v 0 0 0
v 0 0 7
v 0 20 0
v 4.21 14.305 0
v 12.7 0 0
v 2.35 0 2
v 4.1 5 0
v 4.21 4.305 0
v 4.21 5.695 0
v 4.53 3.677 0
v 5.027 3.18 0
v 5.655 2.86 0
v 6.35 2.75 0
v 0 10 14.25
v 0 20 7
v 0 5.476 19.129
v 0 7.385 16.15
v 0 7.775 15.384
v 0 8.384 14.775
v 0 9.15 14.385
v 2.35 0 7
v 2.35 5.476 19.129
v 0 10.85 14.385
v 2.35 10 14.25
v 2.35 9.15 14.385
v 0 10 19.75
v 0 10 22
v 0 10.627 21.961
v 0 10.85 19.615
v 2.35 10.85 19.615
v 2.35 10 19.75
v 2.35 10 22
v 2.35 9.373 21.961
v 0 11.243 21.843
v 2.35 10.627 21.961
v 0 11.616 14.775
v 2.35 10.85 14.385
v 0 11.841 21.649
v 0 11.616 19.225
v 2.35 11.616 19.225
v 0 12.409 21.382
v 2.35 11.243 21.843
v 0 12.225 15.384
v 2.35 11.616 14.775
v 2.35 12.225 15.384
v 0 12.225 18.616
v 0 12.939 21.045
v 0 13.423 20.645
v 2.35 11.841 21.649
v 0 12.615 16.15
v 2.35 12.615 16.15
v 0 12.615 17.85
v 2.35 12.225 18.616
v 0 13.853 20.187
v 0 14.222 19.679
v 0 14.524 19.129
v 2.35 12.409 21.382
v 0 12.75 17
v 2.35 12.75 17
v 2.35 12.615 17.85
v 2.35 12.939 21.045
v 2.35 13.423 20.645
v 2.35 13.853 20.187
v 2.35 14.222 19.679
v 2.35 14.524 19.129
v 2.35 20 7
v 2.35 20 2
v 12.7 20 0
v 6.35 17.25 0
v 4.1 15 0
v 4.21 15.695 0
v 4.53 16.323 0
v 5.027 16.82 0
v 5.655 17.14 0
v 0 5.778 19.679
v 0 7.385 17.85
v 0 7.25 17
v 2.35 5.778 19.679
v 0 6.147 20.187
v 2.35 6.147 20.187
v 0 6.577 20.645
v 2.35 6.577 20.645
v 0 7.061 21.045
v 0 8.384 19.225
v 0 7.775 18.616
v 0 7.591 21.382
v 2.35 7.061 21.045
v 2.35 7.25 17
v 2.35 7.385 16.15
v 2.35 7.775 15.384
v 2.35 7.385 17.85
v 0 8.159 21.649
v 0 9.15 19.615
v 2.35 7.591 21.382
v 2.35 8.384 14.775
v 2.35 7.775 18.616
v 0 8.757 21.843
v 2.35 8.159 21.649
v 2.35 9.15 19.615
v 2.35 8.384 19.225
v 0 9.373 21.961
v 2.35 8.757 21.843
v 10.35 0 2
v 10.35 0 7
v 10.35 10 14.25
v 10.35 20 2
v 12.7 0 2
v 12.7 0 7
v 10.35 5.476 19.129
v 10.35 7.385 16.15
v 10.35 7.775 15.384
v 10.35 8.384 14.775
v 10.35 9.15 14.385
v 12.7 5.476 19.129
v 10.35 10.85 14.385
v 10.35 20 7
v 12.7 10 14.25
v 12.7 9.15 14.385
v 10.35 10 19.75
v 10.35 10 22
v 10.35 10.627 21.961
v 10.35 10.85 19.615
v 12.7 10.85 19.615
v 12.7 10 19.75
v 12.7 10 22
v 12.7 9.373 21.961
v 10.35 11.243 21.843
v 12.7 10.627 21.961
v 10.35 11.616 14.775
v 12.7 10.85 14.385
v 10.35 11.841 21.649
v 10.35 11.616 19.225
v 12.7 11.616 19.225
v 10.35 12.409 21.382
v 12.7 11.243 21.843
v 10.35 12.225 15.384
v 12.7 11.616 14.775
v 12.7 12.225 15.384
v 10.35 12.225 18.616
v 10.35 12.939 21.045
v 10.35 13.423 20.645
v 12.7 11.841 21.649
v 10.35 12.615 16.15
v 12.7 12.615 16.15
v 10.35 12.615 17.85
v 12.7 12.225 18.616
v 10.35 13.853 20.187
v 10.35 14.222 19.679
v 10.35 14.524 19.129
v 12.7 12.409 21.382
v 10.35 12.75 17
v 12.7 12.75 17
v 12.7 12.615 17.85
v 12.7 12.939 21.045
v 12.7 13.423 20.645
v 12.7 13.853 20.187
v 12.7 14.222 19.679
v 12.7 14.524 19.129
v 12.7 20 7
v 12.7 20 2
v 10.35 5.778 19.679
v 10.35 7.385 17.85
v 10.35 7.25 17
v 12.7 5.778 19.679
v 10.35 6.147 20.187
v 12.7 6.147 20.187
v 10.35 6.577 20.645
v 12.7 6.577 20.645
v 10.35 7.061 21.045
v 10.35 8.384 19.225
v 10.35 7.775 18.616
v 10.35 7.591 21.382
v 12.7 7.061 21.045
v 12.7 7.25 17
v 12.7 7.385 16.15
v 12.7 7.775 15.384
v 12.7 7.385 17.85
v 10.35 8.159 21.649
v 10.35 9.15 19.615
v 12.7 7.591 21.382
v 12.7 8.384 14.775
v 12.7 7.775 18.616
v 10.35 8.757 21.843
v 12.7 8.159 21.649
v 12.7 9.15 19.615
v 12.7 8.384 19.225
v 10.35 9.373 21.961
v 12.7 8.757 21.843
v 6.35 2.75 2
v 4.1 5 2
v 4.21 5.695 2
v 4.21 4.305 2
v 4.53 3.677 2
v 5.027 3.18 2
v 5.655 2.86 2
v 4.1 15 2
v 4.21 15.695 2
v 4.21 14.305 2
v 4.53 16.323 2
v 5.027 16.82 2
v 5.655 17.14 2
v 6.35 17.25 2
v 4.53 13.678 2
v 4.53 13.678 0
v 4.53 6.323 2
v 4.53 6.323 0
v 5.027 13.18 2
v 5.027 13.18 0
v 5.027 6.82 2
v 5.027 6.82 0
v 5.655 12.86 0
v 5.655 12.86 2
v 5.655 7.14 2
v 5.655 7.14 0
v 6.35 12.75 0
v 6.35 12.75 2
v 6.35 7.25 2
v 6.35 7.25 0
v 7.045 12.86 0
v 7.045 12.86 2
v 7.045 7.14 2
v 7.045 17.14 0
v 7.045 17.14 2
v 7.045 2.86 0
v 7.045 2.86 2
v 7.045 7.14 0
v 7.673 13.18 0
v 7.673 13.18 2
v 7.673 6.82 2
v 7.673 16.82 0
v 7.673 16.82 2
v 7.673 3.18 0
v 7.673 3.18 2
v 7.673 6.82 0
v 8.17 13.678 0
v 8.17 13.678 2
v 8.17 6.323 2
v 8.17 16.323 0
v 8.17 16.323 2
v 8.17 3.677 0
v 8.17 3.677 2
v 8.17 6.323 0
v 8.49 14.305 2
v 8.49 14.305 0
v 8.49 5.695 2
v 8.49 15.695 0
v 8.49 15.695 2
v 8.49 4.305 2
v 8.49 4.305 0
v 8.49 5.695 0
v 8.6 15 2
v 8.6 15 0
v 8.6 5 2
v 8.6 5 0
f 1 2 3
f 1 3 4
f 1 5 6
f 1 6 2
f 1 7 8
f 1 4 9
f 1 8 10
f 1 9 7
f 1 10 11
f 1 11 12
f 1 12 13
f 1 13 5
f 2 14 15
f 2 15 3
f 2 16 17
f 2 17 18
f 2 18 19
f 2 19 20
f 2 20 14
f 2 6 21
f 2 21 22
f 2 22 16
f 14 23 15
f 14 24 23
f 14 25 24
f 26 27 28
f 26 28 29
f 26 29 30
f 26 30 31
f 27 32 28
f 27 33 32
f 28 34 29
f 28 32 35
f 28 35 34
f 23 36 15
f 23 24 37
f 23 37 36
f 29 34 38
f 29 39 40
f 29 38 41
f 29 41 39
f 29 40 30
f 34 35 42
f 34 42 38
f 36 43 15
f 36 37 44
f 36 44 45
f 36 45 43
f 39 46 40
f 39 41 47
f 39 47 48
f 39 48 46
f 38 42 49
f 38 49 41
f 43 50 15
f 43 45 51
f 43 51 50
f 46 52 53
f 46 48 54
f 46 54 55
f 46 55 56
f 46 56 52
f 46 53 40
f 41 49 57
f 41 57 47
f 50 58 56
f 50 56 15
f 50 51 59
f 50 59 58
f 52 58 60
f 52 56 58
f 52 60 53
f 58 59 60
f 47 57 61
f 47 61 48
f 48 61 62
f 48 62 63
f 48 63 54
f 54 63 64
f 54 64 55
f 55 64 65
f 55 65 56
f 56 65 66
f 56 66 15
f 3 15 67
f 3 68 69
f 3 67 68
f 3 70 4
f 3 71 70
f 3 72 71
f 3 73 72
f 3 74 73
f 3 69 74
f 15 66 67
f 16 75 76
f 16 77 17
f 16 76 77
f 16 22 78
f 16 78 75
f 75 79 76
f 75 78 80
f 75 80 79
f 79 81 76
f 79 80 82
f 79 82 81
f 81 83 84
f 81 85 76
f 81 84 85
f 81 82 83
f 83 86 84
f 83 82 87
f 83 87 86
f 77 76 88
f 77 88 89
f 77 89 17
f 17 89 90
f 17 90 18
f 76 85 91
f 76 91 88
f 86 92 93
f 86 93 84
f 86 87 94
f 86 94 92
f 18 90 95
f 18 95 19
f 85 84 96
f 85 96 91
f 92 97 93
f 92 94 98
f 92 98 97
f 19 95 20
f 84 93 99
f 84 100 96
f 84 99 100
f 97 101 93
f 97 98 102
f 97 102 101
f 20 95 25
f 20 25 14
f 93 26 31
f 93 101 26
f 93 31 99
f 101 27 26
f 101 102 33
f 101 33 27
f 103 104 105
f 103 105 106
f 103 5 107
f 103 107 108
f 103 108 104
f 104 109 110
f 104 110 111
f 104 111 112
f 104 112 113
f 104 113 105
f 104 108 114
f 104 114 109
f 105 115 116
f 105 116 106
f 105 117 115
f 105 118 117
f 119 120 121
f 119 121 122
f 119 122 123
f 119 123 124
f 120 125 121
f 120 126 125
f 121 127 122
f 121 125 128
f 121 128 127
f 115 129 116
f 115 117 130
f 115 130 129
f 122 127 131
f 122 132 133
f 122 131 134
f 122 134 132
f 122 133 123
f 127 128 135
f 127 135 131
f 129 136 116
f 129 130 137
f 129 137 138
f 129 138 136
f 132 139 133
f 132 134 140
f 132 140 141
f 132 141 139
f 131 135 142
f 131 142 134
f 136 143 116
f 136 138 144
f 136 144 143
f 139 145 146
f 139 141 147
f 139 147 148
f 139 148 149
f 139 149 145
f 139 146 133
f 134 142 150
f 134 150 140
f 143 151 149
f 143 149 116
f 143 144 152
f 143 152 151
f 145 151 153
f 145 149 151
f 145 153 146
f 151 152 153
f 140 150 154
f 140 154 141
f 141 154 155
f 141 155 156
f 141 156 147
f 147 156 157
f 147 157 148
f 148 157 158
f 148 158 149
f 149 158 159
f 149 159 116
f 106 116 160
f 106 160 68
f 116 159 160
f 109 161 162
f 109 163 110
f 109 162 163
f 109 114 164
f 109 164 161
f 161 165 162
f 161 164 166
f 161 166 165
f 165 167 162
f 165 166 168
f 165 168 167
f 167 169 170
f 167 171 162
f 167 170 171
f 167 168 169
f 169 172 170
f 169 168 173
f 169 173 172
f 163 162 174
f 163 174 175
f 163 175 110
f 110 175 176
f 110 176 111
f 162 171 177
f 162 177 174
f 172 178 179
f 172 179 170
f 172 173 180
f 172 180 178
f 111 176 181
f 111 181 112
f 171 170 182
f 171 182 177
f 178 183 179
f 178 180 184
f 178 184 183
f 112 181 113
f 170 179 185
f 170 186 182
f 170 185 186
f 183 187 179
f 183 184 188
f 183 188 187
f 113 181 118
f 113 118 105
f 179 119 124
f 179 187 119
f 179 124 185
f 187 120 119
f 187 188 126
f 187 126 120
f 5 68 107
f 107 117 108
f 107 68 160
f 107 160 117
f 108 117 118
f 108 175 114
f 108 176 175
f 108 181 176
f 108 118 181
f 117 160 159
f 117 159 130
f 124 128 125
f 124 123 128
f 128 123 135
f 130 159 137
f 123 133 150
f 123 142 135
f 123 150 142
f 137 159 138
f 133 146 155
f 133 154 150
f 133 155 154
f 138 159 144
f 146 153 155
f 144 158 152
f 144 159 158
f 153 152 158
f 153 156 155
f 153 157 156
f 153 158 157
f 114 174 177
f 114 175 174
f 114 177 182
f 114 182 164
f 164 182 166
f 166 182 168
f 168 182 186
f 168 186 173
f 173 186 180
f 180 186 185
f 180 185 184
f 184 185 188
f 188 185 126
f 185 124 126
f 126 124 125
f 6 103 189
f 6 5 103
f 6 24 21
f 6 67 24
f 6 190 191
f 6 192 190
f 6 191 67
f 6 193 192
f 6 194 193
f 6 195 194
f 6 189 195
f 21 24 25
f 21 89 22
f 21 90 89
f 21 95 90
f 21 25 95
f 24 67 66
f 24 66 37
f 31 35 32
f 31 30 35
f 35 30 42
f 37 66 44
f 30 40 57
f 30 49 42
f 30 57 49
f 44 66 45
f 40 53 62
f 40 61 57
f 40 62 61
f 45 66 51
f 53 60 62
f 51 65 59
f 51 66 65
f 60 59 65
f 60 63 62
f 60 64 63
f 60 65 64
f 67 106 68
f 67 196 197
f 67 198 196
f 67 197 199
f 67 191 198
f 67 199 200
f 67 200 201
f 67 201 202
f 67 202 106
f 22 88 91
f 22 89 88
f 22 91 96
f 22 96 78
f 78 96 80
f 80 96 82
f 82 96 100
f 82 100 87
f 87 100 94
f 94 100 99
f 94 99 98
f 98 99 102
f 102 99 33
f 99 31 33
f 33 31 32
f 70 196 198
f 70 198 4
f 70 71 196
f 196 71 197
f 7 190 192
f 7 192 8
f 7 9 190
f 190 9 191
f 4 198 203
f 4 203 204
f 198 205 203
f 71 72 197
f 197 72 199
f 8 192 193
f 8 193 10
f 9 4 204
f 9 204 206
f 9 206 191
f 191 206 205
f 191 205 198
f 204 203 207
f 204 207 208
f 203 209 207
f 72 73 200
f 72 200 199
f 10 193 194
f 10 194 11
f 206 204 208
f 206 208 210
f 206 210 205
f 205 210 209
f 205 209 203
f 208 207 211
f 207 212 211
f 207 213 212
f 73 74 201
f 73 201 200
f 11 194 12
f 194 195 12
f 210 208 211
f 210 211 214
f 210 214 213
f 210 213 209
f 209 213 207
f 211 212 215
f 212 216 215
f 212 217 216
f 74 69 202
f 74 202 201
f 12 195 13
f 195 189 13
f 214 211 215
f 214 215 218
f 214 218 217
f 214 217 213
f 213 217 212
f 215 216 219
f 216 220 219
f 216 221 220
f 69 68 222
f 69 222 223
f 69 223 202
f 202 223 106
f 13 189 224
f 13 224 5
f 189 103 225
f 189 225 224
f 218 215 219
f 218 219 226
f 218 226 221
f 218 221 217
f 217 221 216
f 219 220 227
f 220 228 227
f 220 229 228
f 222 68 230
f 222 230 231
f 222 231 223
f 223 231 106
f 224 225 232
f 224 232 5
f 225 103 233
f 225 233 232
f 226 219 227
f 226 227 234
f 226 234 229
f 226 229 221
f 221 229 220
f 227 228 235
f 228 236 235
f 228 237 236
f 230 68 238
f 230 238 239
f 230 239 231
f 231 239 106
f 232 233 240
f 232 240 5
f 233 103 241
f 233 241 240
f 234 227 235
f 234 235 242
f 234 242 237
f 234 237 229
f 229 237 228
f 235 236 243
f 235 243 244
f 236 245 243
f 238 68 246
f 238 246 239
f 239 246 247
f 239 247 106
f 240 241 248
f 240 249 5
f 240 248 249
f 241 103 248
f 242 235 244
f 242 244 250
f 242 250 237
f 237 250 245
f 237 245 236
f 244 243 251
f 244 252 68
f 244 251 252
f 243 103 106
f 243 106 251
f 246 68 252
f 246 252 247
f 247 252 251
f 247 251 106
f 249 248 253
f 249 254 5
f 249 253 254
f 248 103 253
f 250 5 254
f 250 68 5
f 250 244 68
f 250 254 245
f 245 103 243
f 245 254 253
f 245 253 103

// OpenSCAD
include <../../parameters.scad>

module 888_5002() {
    joint_width = 8;
    
    module holder() {
        translate([0, 0, 2]) {
            difference() {
                hull() {
                    cube([(strain_gauge_width-joint_width)/2, strain_gauge_screw_distance+10, 5]);
                    translate([0, strain_gauge_screw_distance/2+5, 15])
                        rotate([0, 90, 0])
                            cylinder(d=strain_gauge_screw_distance, h=(strain_gauge_width-joint_width)/2, $fn=50);
                            
                }
                translate([0, strain_gauge_screw_distance/2+5, 15])
                    rotate([0, 90, 0])
                        cylinder(d=M5_screw_diameter, h=(strain_gauge_width-joint_width)/2, $fn=20);
            }
        }
    }
    
    difference() {
        cube([strain_gauge_width, strain_gauge_screw_distance+10, 2]);
        translate([strain_gauge_width/2, 5, 0]) {
            cylinder(d=M4_screw_diameter, h=3, $fn=20);
            translate([0, strain_gauge_screw_distance, 0])
                cylinder(d=M4_screw_diameter, h=3, $fn=20);
        }
    }
    holder();
    translate([strain_gauge_width-(strain_gauge_width-joint_width)/2, 0, 0])
        holder();
}

888_5002();
